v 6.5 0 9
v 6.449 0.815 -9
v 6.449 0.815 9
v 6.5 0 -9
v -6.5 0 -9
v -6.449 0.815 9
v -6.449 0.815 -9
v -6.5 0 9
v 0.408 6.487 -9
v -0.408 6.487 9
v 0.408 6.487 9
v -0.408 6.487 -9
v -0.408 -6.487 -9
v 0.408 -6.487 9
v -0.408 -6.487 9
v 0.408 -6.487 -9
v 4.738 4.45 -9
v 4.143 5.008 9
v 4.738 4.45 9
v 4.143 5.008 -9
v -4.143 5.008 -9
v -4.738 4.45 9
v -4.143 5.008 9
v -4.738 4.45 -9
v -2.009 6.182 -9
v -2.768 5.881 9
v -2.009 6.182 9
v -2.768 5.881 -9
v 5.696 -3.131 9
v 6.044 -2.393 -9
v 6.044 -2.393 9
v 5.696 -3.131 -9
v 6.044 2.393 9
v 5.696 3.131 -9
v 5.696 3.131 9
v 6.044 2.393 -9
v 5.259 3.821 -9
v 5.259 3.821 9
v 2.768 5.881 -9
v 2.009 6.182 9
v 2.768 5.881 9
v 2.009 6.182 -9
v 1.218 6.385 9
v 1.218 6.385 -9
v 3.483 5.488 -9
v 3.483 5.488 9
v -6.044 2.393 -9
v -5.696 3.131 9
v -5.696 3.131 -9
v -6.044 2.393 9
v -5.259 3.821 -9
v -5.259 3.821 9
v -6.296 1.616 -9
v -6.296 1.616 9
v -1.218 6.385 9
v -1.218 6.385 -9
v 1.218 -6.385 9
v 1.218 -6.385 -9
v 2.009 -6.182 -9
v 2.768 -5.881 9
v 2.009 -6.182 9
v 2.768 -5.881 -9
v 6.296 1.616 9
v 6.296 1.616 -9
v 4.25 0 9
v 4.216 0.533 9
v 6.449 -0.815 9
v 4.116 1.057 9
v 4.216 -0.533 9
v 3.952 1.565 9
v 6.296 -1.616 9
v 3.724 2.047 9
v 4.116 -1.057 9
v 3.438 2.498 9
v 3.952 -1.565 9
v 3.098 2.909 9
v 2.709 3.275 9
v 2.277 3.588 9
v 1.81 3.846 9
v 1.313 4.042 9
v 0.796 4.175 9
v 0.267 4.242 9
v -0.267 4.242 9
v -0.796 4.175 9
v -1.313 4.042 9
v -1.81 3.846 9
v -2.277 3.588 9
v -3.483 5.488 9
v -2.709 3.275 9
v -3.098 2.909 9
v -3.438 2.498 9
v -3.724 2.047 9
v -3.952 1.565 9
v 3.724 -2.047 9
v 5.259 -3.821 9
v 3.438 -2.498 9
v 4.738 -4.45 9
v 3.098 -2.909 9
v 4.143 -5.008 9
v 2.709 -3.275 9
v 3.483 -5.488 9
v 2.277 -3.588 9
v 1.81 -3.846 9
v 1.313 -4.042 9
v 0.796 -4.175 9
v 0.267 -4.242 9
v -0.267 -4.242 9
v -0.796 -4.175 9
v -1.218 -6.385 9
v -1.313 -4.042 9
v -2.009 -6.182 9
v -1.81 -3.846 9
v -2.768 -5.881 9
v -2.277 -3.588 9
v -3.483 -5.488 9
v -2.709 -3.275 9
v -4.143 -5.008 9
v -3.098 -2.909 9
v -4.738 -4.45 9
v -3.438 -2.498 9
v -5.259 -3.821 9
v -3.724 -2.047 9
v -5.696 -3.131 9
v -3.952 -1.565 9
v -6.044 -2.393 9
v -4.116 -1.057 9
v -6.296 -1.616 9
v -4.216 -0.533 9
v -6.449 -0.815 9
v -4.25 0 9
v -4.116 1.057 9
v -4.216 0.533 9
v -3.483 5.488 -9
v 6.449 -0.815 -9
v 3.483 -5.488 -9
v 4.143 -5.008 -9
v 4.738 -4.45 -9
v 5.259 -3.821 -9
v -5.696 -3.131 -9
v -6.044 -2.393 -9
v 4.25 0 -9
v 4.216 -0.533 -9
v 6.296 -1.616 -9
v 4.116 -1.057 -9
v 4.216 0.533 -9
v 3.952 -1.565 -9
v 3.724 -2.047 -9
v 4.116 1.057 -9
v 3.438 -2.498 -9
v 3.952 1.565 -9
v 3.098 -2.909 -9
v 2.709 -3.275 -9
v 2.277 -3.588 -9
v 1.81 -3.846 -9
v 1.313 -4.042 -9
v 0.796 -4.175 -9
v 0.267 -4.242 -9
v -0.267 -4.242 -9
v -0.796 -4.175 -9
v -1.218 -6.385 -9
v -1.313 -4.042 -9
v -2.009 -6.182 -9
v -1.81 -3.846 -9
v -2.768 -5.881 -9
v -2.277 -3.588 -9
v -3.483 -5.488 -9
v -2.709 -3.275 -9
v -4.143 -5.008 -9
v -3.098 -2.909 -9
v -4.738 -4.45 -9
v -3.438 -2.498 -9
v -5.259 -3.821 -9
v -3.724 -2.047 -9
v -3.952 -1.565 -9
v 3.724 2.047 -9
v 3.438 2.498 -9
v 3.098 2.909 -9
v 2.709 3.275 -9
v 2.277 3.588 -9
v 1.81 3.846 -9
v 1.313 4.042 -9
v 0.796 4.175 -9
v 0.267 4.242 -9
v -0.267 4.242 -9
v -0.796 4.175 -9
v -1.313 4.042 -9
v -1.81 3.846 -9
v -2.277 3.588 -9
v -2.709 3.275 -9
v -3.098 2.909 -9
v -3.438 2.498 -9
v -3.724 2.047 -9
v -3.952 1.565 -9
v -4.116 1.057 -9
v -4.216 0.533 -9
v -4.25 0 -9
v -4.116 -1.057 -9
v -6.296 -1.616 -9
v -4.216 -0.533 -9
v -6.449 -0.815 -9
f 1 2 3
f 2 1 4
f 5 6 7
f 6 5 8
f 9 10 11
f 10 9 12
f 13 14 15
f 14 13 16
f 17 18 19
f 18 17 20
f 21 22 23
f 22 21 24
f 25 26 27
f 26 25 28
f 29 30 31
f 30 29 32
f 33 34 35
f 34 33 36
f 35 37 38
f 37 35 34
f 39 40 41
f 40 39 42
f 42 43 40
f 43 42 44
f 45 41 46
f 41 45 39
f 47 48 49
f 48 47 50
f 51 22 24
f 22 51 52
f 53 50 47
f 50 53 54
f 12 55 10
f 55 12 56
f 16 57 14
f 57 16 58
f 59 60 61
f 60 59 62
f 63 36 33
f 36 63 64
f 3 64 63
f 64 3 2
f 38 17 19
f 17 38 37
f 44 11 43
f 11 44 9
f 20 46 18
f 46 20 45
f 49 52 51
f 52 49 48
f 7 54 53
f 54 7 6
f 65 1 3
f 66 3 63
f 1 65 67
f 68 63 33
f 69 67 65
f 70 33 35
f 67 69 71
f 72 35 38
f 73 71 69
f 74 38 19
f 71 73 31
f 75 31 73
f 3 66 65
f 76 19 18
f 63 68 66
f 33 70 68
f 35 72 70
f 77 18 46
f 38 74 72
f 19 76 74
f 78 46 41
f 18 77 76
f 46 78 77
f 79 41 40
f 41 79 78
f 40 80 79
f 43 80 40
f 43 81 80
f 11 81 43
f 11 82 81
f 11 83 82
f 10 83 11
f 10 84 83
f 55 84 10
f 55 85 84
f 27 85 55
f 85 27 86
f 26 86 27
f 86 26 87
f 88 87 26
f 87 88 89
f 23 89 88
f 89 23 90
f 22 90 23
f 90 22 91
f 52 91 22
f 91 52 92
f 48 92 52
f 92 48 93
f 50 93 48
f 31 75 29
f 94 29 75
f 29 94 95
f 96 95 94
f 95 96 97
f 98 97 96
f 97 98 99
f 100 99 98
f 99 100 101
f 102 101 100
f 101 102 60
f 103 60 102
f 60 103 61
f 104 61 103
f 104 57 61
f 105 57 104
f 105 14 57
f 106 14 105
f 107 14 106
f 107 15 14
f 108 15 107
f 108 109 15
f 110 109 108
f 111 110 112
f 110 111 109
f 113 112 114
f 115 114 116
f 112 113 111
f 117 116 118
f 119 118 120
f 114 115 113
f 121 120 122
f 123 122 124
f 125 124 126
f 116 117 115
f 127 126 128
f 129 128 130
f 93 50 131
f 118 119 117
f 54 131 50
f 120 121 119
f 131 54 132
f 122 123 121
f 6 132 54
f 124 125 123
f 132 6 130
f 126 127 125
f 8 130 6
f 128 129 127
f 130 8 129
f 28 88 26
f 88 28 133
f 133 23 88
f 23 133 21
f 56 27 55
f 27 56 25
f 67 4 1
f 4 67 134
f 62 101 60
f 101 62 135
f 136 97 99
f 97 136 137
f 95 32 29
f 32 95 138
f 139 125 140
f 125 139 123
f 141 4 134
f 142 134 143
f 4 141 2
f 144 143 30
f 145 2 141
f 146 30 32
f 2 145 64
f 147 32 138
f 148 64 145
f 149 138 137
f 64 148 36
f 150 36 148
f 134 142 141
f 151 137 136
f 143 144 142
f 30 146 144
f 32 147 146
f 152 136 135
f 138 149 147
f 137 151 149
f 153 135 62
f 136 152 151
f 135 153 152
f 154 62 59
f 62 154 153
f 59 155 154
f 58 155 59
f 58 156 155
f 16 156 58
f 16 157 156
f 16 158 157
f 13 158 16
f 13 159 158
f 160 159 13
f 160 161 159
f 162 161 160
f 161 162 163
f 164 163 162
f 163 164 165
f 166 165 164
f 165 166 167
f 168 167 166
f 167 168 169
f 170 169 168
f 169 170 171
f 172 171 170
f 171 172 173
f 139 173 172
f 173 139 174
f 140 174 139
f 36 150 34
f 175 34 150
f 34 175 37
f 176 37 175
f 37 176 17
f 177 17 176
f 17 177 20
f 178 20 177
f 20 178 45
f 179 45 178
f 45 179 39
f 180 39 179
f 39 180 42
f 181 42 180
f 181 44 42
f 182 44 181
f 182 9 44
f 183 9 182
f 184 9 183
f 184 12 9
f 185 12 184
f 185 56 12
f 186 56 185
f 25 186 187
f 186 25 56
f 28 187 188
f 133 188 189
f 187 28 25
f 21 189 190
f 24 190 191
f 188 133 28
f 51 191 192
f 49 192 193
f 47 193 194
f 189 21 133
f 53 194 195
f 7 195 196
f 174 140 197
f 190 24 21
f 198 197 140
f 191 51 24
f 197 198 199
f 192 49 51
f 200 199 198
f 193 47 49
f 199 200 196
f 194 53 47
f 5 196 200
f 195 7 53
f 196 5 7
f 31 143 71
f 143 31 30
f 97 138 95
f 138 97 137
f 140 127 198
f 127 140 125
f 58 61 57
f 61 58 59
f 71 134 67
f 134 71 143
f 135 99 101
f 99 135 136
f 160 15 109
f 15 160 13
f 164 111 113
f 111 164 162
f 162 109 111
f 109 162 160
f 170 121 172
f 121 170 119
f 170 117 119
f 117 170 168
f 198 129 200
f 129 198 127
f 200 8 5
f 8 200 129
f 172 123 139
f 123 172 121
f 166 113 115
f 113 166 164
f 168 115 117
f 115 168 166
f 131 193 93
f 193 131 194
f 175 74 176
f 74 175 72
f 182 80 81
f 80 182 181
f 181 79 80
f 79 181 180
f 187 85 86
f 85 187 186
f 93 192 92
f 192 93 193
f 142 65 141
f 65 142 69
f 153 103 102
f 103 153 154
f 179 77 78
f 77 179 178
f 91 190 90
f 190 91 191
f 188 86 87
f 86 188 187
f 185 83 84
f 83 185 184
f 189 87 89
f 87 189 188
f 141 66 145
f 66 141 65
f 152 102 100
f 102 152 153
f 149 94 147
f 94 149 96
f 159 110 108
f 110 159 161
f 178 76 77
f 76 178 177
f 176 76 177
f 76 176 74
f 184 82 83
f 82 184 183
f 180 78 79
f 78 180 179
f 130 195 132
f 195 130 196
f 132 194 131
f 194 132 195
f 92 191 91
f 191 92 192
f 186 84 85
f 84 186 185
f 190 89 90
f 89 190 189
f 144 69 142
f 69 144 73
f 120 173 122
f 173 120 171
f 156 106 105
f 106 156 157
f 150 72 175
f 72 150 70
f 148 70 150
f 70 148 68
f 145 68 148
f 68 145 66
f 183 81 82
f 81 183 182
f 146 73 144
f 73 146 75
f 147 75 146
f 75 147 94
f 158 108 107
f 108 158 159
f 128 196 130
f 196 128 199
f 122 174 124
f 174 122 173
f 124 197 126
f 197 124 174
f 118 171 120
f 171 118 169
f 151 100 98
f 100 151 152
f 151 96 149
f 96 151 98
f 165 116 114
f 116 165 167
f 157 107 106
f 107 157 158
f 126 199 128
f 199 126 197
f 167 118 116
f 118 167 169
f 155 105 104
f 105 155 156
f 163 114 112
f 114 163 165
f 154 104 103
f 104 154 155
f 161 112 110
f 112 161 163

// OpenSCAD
$fn = 50;


difference() {
	union() {
		translate(v = [0, 0, -9.0000000000]) {
			cylinder(h = 18, r = 6.5000000000);
		}
	}
	union() {
		translate(v = [0, 0, -100.0000000000]) {
			cylinder(h = 200, r = 4.2500000000);
		}
	}
}
